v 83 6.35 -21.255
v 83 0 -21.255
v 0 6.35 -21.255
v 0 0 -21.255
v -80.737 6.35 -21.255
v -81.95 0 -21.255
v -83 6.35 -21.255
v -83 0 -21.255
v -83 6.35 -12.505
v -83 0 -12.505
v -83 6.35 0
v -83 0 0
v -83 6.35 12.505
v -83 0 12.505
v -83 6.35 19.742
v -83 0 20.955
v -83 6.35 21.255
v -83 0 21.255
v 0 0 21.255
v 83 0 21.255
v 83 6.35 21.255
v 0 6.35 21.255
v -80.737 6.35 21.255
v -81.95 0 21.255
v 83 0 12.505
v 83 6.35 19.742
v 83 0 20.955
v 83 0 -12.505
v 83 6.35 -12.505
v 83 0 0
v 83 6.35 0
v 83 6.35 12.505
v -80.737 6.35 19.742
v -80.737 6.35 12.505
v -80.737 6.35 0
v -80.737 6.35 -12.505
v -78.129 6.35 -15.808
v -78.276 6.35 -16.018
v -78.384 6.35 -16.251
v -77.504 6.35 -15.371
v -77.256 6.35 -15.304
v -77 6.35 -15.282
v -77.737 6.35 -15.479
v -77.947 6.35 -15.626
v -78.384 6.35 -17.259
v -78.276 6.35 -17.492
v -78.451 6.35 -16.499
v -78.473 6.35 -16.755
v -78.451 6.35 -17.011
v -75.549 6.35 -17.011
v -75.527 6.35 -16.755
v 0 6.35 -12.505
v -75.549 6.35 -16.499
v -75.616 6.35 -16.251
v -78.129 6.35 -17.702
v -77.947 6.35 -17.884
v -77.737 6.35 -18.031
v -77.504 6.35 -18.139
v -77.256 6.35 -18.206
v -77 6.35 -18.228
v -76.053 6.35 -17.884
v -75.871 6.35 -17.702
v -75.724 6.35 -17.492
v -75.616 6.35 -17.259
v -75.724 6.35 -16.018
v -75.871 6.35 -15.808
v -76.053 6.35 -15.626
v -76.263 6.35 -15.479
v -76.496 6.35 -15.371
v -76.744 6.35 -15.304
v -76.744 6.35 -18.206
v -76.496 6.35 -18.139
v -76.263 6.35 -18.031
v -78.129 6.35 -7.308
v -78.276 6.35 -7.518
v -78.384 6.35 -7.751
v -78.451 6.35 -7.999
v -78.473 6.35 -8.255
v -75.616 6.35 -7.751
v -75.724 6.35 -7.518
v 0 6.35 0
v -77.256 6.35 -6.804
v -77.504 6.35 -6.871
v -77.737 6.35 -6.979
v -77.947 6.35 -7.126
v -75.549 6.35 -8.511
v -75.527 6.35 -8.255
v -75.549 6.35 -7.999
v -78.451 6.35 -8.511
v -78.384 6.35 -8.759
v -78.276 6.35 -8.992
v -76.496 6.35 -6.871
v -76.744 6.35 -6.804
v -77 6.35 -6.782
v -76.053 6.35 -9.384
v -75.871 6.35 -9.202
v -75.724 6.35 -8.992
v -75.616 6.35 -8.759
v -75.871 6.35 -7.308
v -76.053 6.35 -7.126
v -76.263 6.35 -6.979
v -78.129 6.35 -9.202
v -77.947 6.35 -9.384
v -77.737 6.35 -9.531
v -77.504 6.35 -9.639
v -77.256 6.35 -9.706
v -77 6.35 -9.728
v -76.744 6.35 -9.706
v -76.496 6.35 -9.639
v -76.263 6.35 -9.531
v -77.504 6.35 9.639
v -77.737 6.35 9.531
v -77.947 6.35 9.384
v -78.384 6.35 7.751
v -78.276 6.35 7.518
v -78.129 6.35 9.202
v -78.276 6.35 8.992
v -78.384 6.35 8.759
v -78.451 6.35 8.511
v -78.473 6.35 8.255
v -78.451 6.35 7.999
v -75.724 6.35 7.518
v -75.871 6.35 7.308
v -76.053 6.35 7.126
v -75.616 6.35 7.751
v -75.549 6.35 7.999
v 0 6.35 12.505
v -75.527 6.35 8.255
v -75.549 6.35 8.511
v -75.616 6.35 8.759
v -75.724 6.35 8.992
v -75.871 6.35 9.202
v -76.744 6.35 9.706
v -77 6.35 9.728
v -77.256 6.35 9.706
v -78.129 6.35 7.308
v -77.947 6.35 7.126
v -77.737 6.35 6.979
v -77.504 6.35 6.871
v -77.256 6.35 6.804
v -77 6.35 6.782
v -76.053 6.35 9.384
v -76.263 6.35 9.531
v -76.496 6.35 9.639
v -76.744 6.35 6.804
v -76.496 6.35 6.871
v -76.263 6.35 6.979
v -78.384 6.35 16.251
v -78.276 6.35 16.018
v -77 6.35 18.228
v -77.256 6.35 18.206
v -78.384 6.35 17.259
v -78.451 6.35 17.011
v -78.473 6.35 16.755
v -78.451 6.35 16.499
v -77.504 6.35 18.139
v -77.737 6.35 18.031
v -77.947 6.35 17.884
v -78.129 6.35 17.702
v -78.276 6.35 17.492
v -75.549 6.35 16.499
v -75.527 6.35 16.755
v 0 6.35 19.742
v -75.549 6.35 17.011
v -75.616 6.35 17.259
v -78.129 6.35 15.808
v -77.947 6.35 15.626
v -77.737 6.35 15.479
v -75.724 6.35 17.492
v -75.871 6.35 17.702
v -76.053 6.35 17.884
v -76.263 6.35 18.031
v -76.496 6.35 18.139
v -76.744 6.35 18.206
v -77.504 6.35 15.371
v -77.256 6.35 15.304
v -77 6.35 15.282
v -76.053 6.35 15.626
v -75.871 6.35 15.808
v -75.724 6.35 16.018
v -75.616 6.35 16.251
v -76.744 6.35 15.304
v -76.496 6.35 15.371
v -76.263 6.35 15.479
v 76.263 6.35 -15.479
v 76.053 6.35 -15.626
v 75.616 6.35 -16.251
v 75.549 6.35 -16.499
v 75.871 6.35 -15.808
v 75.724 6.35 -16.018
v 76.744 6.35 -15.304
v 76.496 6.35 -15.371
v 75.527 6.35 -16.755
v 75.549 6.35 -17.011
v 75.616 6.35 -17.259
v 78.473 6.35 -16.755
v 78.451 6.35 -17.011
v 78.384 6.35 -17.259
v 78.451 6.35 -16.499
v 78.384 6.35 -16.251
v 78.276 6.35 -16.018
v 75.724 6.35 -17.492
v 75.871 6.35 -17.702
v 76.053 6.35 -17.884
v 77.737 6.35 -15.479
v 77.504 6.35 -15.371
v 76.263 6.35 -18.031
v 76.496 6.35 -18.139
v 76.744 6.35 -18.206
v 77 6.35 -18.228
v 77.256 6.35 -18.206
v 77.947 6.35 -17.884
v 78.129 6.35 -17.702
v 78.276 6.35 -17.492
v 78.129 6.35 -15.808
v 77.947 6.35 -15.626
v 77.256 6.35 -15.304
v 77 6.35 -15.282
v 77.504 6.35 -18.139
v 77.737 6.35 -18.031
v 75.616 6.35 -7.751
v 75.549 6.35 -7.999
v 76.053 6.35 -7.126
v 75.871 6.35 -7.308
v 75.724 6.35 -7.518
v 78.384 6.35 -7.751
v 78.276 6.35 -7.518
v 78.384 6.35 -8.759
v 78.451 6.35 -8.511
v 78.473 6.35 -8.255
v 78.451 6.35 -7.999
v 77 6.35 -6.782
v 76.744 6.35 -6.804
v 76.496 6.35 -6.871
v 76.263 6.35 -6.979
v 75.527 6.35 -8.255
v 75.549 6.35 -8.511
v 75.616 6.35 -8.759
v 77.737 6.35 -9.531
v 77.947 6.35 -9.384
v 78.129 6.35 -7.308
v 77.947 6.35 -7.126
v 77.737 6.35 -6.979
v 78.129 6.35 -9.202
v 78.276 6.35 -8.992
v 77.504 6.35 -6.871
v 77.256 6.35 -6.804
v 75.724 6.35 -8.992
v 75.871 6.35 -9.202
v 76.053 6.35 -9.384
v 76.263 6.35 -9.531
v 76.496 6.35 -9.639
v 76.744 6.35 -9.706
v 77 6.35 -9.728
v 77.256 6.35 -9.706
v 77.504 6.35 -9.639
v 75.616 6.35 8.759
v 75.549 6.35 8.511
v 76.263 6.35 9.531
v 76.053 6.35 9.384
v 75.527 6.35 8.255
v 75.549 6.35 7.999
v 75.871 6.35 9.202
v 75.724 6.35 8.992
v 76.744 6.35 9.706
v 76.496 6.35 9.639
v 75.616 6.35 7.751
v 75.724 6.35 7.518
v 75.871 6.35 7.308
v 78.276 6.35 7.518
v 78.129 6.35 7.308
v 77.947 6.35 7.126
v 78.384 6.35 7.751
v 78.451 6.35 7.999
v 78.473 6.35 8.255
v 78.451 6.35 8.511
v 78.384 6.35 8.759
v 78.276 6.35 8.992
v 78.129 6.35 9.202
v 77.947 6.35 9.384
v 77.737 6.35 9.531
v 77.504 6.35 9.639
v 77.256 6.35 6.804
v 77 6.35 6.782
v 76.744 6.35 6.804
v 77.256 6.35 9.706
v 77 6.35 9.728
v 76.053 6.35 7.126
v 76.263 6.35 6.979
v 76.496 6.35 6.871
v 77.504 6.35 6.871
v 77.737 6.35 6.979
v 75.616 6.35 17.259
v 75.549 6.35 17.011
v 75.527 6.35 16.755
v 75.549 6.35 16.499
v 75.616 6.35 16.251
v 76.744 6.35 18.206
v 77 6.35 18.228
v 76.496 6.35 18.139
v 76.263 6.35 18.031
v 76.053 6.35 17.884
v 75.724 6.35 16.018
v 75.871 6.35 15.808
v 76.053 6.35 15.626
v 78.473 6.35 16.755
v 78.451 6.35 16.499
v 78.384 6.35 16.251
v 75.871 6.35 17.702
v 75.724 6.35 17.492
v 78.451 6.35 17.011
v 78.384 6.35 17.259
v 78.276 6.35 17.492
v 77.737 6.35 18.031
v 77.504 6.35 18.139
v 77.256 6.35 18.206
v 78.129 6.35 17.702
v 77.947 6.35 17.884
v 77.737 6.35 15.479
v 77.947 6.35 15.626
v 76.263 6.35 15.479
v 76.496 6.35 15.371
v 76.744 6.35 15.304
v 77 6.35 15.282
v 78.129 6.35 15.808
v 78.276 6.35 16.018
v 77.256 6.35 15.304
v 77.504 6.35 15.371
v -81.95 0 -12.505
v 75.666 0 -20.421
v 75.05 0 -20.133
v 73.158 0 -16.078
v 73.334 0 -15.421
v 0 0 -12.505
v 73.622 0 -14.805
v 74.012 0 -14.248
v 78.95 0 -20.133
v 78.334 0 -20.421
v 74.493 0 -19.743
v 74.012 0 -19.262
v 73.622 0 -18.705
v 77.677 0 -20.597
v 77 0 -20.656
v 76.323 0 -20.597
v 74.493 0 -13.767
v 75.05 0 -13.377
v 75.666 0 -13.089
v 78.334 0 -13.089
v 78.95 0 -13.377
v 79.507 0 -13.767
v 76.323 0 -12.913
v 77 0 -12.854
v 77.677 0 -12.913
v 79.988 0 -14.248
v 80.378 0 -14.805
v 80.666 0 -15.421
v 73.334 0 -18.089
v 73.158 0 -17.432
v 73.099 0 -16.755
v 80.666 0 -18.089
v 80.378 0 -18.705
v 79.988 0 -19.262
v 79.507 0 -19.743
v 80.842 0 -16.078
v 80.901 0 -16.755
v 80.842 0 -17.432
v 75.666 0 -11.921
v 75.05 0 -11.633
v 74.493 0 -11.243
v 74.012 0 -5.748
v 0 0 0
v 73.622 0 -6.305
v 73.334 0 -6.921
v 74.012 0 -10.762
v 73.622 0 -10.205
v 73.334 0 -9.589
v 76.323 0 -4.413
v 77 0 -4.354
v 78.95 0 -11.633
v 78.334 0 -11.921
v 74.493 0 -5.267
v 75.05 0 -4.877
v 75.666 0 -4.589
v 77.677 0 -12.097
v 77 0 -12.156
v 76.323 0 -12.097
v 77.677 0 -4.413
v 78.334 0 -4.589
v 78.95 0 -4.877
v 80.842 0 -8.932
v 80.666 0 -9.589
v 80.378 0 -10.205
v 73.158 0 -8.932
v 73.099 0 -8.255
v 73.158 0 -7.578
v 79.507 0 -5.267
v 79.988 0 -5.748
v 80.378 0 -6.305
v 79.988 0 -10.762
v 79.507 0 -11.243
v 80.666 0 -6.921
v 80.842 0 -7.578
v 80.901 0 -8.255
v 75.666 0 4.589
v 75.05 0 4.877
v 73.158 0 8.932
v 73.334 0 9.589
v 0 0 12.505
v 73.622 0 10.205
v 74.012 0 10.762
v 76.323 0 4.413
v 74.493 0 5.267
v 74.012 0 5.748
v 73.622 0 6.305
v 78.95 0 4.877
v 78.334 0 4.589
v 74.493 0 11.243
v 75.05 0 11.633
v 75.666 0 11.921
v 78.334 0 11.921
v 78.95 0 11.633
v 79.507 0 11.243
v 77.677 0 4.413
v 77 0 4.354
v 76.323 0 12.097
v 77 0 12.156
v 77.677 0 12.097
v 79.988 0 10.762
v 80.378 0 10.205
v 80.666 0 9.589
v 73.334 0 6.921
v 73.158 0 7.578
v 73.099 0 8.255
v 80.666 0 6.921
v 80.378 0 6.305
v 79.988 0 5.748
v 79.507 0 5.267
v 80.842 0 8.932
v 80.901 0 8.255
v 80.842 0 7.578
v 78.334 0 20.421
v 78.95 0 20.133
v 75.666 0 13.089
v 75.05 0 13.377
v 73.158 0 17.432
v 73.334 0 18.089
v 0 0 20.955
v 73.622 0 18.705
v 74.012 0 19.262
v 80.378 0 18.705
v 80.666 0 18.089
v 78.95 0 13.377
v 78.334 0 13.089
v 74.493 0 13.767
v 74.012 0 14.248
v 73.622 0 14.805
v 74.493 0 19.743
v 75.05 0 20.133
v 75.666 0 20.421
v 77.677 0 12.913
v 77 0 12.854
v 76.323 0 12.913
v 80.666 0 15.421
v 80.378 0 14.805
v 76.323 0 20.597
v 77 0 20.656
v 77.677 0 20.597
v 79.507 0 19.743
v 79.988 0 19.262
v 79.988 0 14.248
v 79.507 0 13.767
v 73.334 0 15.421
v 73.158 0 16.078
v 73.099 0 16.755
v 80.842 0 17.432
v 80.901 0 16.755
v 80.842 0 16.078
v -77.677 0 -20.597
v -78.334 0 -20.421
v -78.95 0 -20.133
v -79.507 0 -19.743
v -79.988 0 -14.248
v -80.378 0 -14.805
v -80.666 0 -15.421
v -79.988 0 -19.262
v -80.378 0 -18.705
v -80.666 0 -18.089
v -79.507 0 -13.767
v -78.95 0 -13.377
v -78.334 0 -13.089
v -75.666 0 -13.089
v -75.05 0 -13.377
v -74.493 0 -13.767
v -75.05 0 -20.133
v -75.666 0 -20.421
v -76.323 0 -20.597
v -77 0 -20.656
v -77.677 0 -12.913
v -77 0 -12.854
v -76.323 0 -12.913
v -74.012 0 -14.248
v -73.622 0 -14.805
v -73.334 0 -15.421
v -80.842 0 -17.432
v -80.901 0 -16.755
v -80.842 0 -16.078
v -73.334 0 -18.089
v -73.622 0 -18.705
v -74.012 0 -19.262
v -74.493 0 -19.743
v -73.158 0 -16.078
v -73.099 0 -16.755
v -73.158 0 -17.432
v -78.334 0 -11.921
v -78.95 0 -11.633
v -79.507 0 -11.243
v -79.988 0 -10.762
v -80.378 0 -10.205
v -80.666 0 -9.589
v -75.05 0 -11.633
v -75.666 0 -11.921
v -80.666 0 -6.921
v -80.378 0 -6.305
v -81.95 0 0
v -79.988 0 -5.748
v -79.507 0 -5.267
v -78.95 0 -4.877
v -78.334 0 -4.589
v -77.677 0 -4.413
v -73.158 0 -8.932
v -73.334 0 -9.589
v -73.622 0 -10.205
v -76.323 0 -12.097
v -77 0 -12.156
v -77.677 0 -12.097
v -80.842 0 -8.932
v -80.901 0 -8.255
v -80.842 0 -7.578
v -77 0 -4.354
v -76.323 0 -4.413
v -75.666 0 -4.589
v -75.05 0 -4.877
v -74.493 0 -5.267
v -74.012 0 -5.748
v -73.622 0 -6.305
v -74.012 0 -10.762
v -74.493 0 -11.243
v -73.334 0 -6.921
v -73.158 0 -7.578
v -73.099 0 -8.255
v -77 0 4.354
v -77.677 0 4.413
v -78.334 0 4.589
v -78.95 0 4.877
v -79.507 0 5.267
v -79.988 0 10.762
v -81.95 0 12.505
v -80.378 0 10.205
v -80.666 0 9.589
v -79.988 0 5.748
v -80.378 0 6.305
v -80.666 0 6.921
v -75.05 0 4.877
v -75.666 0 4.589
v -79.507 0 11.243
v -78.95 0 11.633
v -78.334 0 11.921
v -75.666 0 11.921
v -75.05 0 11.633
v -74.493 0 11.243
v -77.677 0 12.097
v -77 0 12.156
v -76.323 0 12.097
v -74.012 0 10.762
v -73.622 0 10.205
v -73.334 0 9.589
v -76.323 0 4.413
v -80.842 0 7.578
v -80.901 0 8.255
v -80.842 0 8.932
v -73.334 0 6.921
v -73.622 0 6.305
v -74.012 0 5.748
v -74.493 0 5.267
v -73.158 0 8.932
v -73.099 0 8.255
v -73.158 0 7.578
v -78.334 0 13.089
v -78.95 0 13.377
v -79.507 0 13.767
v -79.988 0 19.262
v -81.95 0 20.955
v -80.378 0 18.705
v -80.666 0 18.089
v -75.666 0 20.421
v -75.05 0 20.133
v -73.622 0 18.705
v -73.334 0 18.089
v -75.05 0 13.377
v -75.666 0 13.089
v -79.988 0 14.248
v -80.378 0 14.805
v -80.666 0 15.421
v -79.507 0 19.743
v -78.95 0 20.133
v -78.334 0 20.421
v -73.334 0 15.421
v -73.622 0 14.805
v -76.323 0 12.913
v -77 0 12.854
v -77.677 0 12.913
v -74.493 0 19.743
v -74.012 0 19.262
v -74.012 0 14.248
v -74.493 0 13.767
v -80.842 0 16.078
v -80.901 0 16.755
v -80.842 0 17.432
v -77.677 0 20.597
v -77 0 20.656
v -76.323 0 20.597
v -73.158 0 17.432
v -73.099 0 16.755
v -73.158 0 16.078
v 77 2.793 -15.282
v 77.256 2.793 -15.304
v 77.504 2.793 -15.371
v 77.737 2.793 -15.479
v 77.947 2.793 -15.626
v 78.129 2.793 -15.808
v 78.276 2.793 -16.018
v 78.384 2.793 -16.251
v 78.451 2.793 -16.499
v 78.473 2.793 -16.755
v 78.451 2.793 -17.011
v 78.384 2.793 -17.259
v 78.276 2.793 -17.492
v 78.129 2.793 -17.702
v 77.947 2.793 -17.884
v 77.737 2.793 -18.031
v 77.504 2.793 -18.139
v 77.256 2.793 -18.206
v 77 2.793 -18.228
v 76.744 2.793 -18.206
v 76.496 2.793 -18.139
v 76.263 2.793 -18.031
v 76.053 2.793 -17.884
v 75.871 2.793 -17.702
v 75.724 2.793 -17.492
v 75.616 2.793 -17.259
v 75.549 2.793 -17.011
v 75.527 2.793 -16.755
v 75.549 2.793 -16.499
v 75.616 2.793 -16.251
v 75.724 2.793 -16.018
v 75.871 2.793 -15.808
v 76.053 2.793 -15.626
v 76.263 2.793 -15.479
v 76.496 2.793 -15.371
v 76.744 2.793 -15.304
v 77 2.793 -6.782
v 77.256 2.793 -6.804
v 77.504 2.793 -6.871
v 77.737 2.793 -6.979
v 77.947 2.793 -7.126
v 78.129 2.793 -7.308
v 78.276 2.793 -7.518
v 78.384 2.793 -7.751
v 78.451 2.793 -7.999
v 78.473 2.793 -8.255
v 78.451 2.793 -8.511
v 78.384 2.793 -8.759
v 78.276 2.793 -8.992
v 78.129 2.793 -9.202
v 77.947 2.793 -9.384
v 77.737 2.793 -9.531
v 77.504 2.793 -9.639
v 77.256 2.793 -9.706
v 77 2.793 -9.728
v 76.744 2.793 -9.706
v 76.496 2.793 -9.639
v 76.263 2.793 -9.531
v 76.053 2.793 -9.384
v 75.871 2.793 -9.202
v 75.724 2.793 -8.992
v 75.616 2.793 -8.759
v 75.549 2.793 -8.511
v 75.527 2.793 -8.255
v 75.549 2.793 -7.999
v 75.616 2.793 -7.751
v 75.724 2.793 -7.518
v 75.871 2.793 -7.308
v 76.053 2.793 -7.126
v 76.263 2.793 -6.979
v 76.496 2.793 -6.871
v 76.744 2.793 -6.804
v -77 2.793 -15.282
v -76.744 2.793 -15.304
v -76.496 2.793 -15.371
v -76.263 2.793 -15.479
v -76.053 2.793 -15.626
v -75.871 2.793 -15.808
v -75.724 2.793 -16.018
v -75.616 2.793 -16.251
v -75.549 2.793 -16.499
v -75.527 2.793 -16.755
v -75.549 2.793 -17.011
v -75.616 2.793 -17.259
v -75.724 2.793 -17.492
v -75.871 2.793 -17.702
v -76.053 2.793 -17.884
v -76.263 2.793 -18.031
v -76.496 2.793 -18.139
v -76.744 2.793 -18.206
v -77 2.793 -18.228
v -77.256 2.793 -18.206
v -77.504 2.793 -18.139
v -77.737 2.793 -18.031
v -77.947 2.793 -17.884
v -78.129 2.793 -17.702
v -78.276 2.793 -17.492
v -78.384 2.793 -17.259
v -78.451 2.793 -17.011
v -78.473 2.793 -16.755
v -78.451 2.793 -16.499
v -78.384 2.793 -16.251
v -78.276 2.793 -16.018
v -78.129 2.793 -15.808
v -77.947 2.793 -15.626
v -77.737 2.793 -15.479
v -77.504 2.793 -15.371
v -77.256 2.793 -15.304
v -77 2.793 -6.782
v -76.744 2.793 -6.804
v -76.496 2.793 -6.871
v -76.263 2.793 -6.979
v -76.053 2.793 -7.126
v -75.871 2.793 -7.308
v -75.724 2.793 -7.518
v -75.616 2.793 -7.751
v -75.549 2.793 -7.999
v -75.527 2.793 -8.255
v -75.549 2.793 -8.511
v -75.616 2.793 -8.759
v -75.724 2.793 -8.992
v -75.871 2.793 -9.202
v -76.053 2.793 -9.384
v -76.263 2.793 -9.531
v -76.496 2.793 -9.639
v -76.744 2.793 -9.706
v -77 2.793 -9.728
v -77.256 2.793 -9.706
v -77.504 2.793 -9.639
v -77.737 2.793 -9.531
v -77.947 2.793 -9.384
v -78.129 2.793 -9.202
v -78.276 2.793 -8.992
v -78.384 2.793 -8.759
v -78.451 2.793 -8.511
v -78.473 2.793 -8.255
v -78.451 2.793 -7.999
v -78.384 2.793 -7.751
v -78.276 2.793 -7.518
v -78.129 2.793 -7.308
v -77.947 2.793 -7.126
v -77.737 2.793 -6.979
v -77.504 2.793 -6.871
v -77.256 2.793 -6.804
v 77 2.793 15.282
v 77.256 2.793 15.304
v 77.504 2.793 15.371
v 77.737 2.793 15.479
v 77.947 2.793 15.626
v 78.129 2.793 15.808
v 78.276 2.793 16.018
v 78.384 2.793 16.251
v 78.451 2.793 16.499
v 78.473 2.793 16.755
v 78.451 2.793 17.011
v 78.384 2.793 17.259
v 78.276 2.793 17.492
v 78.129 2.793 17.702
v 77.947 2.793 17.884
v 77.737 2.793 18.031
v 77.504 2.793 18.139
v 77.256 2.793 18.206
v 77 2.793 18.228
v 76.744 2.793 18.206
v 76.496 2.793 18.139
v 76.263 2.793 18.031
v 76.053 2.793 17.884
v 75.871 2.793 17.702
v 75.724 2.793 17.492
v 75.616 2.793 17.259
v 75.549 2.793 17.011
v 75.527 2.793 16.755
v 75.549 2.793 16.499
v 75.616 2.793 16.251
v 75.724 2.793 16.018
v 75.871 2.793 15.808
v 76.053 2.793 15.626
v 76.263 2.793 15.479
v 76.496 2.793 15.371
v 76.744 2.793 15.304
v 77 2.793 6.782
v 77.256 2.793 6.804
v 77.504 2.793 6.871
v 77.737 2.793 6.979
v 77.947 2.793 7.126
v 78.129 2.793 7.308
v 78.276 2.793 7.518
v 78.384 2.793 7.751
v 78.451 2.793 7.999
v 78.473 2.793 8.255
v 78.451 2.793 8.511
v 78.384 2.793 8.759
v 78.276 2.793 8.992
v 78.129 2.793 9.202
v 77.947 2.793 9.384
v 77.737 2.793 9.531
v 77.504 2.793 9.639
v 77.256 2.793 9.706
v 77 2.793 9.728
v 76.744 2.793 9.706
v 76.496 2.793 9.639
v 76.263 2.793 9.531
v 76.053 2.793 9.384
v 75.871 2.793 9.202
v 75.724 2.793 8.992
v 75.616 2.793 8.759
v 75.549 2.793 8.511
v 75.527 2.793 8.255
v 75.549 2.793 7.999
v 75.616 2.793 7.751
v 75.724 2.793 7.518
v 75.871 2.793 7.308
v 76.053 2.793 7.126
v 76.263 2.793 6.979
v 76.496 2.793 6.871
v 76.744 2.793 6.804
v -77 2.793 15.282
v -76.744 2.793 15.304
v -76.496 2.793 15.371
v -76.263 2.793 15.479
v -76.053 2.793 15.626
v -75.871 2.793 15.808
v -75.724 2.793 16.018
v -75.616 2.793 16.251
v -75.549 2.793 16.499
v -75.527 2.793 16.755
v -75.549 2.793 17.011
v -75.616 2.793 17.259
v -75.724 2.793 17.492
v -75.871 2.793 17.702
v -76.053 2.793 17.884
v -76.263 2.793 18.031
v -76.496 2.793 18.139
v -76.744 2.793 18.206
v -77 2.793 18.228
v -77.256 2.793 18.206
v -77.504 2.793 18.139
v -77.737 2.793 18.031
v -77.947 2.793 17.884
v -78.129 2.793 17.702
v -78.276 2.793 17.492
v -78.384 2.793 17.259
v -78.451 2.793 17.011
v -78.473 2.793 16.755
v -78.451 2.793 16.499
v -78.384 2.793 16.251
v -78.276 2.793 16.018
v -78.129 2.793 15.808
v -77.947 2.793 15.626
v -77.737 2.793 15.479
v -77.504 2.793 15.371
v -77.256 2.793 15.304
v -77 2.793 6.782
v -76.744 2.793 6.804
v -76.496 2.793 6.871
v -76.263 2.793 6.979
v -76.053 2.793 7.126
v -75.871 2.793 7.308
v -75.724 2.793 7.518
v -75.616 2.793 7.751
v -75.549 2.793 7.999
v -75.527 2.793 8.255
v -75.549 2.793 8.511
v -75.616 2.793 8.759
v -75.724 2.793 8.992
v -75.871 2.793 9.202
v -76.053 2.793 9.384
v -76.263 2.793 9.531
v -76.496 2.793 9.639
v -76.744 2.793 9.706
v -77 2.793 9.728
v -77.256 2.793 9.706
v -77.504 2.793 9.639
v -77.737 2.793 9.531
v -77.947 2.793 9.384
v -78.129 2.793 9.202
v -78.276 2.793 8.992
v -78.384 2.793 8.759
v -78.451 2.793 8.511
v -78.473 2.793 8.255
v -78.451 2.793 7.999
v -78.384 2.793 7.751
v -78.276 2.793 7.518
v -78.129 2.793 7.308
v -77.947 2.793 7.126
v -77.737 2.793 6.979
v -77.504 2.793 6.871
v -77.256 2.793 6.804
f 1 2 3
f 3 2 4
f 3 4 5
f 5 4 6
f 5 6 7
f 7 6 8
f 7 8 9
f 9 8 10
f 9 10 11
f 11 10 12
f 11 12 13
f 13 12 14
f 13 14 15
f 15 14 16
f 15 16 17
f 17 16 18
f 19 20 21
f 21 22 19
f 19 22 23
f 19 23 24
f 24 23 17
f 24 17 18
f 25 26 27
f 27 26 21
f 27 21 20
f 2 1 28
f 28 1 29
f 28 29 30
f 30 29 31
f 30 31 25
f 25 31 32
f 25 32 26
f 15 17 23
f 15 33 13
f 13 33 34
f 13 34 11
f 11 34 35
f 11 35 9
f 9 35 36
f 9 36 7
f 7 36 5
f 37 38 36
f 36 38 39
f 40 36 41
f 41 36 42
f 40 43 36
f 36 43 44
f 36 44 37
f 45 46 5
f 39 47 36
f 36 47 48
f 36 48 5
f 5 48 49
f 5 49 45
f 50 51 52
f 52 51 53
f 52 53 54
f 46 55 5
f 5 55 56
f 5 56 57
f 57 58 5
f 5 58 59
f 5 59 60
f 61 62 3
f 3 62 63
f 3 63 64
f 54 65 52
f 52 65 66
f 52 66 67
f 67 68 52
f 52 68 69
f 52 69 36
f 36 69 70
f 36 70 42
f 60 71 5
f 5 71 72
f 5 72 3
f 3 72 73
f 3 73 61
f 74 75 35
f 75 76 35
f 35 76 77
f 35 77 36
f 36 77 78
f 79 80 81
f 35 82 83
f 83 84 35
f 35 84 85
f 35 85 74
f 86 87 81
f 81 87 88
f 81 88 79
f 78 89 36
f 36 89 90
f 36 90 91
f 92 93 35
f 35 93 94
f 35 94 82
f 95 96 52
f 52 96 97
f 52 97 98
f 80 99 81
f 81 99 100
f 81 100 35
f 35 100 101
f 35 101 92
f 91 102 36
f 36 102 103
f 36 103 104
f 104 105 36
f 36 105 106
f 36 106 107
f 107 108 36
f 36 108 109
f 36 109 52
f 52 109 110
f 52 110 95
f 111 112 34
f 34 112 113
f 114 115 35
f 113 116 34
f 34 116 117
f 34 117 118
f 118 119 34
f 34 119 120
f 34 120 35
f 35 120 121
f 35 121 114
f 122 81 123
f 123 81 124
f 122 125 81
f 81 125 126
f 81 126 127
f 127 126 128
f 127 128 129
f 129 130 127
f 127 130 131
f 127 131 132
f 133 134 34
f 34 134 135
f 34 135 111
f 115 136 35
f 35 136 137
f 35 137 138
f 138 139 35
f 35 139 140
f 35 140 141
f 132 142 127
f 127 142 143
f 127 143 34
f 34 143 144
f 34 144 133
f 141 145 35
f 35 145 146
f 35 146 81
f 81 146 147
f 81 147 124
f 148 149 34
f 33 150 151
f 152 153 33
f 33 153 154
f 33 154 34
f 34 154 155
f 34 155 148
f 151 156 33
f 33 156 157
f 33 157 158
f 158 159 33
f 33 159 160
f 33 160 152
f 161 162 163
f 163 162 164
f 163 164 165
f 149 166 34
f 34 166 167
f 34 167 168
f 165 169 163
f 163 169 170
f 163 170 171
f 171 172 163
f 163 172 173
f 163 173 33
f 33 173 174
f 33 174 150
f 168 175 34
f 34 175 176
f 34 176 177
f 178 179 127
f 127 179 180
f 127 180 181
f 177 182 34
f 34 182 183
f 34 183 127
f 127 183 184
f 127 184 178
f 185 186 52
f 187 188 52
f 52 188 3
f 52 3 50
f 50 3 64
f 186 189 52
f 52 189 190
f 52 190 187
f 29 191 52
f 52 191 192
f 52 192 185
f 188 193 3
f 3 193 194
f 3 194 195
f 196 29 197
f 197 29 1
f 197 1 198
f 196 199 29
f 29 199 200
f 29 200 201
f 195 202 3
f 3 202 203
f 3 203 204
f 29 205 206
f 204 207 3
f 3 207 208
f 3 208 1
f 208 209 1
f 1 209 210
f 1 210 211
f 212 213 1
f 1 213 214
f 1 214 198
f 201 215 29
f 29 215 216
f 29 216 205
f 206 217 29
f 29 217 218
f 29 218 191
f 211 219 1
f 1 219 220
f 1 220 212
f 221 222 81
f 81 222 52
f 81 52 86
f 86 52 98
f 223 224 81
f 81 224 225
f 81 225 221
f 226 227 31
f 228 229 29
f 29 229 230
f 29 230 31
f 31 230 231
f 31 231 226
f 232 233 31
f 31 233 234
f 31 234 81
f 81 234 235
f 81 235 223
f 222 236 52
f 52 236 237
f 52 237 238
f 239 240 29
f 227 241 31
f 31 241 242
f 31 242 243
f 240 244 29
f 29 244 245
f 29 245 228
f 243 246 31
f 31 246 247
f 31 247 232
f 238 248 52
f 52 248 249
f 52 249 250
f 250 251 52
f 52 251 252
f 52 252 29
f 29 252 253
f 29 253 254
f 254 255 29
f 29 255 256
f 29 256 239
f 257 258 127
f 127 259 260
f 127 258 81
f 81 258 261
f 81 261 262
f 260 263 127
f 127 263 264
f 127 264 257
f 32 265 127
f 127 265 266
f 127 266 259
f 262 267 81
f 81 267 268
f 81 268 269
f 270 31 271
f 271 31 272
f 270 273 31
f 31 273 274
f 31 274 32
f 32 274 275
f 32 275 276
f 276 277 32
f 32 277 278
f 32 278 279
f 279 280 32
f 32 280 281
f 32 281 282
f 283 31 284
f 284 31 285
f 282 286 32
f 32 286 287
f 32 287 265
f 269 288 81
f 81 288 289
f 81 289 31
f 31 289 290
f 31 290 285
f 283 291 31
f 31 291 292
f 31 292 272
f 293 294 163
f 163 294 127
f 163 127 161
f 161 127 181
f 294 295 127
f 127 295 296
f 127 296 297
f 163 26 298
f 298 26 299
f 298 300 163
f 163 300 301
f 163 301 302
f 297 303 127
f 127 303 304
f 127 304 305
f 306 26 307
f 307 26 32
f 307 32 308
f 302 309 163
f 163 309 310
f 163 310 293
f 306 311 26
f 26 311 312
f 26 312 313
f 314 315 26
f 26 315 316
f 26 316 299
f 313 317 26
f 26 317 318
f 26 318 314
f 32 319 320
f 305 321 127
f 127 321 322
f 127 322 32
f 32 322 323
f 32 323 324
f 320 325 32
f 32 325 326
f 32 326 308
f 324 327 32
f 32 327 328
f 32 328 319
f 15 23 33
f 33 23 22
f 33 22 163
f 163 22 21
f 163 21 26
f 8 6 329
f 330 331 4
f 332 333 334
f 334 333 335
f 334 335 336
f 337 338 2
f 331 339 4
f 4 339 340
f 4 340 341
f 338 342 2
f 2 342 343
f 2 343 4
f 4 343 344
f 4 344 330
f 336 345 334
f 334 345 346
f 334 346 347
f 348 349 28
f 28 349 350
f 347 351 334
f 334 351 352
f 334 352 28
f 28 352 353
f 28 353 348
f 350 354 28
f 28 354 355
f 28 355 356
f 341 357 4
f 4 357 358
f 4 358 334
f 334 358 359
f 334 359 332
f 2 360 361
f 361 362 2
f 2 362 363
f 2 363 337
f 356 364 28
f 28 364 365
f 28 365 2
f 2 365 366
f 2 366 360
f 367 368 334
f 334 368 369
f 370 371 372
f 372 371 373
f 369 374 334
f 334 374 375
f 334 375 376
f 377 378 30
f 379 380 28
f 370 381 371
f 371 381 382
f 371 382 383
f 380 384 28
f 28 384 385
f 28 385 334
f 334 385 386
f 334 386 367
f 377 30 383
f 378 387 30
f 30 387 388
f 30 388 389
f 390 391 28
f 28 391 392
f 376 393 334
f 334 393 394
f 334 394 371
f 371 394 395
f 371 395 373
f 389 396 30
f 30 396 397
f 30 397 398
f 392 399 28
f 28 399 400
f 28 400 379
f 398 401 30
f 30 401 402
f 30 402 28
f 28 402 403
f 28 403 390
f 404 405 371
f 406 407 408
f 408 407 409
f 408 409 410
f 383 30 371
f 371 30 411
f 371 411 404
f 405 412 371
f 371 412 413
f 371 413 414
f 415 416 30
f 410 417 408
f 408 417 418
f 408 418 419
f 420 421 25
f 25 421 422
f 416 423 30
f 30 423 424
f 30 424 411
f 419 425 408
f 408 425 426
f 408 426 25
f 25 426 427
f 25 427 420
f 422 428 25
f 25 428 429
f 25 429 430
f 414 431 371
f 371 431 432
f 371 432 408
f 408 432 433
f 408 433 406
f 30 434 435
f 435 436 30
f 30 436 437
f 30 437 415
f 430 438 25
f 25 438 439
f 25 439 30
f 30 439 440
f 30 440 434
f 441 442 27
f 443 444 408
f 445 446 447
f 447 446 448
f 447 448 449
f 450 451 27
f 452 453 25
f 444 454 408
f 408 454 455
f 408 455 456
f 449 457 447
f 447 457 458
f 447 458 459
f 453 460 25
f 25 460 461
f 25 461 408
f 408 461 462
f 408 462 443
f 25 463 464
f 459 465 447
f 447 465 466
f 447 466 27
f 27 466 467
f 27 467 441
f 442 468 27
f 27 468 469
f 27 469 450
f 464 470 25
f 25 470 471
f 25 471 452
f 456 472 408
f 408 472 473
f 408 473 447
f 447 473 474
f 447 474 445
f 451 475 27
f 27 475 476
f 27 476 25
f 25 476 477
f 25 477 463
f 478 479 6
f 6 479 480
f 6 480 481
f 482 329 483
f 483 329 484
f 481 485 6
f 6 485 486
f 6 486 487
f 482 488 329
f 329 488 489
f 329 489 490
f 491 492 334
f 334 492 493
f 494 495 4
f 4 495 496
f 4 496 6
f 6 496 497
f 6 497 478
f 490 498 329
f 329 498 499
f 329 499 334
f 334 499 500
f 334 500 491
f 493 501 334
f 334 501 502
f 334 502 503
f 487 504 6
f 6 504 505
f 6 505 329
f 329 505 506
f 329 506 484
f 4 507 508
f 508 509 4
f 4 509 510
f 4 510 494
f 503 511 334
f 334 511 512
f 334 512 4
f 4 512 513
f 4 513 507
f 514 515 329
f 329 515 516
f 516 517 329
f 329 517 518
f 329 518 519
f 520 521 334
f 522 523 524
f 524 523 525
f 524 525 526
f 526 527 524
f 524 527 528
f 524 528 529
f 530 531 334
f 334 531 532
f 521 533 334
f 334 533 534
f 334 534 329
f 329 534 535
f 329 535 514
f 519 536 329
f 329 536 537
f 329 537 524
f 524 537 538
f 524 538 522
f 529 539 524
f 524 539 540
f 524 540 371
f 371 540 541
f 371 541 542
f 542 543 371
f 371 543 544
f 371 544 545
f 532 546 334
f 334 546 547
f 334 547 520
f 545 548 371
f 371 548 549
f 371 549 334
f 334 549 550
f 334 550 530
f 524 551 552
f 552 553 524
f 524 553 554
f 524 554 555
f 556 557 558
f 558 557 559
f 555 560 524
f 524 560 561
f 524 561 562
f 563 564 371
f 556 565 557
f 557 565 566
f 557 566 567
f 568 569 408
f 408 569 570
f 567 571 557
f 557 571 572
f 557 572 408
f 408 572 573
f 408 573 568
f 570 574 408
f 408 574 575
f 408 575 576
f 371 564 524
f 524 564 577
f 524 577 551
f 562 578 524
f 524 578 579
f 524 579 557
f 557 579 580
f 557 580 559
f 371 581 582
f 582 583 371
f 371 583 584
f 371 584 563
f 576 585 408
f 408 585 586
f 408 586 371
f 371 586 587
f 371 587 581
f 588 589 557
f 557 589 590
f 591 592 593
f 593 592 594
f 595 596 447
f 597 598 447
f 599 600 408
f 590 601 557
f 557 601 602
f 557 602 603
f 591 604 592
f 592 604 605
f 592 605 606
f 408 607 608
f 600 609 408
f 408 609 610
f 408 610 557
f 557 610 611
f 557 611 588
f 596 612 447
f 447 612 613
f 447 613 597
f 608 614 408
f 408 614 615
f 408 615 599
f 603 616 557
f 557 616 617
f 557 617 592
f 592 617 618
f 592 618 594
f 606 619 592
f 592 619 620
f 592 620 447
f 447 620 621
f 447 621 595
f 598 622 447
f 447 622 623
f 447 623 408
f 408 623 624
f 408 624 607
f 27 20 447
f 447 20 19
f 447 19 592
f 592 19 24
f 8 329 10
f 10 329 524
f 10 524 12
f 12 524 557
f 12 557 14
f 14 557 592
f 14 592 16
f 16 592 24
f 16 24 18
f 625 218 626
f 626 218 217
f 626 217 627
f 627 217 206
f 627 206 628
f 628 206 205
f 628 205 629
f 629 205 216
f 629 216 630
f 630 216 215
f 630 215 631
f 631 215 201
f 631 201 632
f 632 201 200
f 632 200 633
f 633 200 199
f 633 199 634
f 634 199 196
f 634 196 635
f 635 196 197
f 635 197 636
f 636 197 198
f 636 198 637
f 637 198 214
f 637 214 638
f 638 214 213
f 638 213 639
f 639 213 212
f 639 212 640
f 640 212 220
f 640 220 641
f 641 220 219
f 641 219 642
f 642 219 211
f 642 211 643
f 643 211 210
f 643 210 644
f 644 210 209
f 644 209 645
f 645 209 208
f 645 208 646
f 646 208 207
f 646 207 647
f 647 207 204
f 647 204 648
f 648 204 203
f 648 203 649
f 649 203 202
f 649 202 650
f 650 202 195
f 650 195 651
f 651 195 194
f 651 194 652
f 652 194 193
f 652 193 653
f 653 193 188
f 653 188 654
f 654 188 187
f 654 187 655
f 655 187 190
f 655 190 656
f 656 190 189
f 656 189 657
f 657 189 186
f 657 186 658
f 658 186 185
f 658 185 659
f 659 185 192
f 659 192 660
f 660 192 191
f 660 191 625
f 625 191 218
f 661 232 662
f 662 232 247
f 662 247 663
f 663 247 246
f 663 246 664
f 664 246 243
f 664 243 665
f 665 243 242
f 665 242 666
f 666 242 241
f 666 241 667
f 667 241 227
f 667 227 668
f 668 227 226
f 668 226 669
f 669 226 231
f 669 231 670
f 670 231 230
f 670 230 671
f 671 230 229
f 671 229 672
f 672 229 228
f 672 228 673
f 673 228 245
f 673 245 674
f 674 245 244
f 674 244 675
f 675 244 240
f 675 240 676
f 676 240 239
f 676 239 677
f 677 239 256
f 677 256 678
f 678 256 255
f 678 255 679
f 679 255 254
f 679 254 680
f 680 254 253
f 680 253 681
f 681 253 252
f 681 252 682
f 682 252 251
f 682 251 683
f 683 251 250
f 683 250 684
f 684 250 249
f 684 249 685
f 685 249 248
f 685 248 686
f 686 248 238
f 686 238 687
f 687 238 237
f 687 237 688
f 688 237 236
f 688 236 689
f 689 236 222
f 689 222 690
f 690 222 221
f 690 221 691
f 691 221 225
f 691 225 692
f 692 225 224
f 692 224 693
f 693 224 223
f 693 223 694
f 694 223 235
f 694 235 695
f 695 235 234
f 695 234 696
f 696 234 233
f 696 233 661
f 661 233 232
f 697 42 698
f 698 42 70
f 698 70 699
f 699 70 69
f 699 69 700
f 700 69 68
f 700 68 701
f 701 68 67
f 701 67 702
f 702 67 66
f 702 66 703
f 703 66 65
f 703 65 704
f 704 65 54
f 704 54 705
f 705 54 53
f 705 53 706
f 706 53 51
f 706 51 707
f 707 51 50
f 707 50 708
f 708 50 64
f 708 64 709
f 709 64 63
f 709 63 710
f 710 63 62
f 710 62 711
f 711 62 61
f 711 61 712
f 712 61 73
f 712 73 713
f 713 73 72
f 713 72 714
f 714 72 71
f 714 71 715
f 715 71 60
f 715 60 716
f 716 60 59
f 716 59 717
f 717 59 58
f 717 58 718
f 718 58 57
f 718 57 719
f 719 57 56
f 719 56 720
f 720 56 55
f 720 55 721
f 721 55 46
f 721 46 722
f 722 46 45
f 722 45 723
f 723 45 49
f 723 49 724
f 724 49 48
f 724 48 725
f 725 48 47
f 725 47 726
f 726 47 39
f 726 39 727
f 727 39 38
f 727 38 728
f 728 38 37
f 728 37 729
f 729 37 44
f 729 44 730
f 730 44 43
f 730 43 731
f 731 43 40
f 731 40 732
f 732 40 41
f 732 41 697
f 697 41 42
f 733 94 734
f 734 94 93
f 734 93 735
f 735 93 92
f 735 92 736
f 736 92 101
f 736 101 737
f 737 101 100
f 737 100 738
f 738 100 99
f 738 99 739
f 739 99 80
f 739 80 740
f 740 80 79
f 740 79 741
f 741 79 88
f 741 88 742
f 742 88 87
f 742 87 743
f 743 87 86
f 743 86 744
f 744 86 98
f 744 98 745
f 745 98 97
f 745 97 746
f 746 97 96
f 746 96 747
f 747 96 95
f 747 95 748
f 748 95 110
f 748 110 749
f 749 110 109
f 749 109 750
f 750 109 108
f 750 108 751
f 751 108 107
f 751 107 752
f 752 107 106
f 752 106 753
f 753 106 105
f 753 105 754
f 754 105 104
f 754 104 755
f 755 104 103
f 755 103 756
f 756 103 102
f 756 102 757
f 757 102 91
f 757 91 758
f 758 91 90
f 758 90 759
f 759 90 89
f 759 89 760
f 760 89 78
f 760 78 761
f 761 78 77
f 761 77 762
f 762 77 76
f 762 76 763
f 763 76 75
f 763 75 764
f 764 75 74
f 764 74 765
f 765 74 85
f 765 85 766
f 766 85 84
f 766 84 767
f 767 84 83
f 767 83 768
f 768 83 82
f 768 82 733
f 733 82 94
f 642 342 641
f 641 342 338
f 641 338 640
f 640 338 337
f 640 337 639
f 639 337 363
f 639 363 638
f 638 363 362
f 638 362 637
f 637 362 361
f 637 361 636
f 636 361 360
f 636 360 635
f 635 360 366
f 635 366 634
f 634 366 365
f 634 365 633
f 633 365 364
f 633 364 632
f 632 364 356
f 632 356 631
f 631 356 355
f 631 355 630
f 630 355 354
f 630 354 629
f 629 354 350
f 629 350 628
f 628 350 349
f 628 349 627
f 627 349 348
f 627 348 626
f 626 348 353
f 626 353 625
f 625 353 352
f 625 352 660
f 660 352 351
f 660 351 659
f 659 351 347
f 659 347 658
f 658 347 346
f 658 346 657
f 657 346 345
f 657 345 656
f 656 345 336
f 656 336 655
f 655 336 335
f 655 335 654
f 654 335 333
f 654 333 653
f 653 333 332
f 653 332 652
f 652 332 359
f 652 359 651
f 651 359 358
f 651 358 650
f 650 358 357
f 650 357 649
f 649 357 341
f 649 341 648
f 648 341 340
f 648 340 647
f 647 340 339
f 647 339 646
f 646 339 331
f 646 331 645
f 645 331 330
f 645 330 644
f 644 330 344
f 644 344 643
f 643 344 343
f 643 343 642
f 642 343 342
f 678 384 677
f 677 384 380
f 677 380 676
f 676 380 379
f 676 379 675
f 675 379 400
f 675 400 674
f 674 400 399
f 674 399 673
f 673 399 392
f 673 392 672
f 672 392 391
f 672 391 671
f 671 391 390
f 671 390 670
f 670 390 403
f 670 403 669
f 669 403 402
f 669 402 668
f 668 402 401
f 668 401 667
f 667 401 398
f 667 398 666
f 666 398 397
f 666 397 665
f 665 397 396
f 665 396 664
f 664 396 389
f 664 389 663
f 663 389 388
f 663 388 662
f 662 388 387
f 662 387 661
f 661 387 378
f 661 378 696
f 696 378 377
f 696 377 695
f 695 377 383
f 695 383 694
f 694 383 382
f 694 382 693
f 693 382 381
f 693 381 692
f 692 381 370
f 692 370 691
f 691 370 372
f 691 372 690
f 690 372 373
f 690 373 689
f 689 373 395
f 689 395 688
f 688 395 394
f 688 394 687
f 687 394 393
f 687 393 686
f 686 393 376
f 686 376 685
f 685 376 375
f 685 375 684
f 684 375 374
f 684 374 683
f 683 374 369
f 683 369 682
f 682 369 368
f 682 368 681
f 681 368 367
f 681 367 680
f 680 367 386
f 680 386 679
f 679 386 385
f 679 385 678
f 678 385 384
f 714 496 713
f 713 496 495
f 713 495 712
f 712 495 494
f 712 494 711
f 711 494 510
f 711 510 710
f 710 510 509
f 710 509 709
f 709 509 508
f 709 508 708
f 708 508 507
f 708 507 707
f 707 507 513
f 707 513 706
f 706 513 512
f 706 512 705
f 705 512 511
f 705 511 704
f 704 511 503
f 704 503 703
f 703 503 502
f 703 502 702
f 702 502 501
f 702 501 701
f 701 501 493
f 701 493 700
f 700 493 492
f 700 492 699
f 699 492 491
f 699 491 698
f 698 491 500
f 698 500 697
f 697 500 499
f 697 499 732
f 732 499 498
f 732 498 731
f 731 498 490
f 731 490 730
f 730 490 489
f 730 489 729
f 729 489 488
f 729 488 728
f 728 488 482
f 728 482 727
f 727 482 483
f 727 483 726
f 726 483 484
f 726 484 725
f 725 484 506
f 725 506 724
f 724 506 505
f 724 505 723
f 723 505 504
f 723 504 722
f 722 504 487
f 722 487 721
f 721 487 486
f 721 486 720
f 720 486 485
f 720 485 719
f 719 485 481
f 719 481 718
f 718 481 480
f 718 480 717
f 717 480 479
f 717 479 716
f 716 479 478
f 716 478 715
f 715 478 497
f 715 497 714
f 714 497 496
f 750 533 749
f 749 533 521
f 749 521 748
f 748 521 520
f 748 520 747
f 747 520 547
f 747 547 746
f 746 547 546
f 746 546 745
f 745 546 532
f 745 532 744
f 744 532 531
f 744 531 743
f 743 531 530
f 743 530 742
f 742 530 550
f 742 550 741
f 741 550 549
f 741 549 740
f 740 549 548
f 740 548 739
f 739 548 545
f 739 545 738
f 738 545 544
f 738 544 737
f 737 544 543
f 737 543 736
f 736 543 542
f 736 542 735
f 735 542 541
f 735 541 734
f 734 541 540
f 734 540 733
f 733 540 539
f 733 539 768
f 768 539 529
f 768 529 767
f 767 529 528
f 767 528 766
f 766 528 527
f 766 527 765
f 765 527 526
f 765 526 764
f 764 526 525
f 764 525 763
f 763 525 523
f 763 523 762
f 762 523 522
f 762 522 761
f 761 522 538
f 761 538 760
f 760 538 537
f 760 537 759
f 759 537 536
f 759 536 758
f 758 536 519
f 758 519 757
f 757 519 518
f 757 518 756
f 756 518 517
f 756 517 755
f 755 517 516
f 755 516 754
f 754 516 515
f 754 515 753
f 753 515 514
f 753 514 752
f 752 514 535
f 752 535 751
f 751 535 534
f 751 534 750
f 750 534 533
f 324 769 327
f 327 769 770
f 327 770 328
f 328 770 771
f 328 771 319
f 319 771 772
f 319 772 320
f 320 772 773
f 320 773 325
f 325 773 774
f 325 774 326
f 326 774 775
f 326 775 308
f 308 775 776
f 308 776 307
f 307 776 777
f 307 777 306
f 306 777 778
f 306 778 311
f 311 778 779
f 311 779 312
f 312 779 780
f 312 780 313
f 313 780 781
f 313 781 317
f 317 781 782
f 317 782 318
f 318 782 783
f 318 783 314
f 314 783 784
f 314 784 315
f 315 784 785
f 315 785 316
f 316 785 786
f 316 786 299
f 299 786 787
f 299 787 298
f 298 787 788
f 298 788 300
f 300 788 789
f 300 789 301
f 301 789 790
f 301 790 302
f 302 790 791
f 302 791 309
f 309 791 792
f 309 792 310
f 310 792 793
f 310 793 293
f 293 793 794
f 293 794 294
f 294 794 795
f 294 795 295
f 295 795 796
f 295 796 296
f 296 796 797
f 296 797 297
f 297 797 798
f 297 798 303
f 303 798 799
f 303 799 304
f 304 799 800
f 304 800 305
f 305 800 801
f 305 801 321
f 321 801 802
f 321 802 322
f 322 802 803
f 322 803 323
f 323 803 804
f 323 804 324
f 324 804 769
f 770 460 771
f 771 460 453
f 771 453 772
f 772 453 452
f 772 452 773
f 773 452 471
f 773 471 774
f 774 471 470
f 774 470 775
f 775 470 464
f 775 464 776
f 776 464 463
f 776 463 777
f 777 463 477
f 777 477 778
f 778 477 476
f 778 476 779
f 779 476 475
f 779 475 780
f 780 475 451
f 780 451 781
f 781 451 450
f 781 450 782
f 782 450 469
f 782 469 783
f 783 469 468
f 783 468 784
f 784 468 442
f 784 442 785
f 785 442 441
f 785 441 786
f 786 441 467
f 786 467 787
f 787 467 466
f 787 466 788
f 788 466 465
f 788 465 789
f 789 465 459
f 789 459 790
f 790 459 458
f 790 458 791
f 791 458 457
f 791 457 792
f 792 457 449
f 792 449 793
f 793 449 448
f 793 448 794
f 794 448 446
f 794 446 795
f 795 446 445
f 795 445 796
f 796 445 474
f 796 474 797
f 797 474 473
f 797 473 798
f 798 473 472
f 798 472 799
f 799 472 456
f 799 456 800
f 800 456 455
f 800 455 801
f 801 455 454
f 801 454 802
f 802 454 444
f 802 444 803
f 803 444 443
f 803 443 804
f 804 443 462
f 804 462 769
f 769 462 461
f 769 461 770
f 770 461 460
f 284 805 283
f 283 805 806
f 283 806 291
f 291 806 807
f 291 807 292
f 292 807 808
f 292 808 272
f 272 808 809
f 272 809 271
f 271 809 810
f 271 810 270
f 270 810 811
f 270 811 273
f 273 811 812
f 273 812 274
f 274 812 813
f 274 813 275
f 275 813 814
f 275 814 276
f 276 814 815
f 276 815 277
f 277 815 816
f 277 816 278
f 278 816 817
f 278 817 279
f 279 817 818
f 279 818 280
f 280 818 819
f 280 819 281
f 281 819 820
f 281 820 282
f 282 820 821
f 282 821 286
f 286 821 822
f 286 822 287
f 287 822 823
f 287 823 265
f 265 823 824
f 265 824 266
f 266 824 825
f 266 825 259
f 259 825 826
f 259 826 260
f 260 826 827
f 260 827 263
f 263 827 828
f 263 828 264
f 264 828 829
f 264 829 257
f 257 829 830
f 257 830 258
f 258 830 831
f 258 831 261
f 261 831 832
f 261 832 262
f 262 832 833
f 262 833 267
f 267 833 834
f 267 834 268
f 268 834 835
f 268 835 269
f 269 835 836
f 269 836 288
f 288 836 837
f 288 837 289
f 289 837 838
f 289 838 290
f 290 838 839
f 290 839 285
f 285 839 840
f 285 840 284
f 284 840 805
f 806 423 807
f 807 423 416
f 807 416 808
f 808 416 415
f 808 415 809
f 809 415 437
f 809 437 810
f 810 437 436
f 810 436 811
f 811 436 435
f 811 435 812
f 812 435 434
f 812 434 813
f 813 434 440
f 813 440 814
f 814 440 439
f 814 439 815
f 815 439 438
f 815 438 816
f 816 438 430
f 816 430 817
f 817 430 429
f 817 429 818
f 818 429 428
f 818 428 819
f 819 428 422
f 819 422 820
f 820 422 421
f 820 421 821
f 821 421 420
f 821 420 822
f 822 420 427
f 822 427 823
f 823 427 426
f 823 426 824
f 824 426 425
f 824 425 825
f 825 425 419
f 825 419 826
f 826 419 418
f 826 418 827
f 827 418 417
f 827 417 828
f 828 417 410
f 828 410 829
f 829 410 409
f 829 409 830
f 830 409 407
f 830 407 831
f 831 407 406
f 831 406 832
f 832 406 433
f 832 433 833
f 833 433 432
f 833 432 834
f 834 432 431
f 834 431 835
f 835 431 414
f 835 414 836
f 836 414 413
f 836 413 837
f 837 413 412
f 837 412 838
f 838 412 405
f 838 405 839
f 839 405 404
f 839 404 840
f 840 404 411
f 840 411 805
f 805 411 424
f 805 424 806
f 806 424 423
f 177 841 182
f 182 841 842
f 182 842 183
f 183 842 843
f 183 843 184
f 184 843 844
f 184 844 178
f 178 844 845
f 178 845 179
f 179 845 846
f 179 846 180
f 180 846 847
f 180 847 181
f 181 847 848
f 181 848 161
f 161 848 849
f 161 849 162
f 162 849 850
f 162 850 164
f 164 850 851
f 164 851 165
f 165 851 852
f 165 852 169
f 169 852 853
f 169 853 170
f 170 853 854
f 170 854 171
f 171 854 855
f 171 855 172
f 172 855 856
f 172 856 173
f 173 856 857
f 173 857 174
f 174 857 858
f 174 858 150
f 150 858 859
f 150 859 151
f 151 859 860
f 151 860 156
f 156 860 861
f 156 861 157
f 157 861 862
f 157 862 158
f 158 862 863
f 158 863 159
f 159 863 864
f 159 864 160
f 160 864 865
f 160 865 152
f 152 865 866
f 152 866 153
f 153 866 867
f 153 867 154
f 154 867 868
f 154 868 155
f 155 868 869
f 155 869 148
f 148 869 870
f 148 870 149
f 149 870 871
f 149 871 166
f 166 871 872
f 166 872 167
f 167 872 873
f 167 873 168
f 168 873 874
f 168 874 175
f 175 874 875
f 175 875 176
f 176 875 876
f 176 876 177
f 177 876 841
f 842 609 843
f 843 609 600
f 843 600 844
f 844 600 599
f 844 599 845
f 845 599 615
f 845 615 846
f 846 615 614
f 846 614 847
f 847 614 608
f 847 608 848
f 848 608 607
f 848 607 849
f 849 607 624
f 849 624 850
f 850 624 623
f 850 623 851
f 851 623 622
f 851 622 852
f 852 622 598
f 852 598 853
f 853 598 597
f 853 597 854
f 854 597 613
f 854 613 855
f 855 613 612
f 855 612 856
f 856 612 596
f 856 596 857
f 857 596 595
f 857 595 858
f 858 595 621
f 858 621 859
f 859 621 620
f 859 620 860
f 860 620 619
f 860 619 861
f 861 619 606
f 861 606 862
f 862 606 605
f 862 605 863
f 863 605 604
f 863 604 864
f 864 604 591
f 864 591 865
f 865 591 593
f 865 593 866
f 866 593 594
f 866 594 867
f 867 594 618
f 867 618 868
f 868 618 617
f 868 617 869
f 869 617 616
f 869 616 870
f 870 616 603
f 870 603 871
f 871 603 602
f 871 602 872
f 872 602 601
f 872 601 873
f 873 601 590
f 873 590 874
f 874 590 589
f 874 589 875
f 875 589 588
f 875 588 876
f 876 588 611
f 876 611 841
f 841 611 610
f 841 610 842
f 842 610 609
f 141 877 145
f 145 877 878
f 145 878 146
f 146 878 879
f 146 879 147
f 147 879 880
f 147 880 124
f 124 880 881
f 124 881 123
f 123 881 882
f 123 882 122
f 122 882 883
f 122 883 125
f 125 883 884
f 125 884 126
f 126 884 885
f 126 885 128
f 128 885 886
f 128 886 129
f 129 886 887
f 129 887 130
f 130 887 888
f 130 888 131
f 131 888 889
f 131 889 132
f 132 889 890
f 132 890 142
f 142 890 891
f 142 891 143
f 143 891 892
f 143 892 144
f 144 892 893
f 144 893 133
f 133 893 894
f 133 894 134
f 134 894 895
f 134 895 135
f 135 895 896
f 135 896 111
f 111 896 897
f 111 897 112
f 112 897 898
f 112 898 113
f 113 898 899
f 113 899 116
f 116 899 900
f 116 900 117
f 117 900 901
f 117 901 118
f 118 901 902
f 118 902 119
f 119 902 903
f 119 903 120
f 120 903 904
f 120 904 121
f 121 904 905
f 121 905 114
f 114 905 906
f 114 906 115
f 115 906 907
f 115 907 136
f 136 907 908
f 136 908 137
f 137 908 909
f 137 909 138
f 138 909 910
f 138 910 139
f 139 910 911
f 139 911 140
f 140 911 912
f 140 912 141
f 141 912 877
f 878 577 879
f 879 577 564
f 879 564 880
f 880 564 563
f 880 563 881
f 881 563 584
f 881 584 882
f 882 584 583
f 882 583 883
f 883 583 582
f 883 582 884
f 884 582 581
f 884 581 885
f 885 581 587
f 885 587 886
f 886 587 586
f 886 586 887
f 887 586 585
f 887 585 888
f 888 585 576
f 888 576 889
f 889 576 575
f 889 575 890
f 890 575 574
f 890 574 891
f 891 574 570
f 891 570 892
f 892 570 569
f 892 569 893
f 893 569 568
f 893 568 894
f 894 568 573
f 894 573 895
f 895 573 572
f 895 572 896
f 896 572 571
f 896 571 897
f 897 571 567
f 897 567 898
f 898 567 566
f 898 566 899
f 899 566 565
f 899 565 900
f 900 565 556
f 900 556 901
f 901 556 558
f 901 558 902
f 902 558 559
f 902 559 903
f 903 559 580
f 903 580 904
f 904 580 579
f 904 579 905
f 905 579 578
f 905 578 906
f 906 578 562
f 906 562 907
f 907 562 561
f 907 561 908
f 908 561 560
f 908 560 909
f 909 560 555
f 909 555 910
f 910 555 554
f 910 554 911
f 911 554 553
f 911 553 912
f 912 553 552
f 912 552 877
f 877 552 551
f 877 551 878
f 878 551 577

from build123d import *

# Parameters (mm, degrees)
SKETCH1_W                                         = 166
SKETCH1_H                                         = 42.51
BOSS_EXTRUDE1_DEPTH                               = 6.35
F_4_CLEARANCE_HOLE1_D                             = 2.9464
CSK_FOR_4_FLAT_HEAD_SOCKET_CAP_SCREW1_D           = 2.9464
CSK_FOR_4_FLAT_HEAD_SOCKET_CAP_SCREW1_CSINK_D     = 6.9116702
CSK_FOR_4_FLAT_HEAD_SOCKET_CAP_SCREW1_CSINK_ANGLE = 82


with BuildPart() as part:
    # Sketch1 → Boss-Extrude1 (new body)
    with BuildSketch(Plane(origin=(0, 0, 0), x_dir=(1, 0, 0), z_dir=(0, 1, 0))):
        Rectangle(SKETCH1_W, SKETCH1_H)
    extrude(amount=BOSS_EXTRUDE1_DEPTH)

    # #4 Clearance Hole1 (through all)
    with Locations(Plane(origin=(0, 6.35, 0), x_dir=(1, 0, 0), z_dir=(0, 1, 0))):
        with Locations((-77, 8.255), (-77, 16.755), (77, 8.255), (77, 16.755)):
            Hole(F_4_CLEARANCE_HOLE1_D / 2)

    # CSK for #4 Flat Head Socket Cap Screw1 (through all)
    with Locations(Plane(origin=(0, 0, 0), x_dir=(-1, 0, 0), z_dir=(0, -1, 0))):
        with Locations((77, 8.255), (77, 16.755), (-77, 8.255), (-77, 16.755)):
            csk_for_4_flat_head_socket_cap_screw1 = CounterSinkHole(CSK_FOR_4_FLAT_HEAD_SOCKET_CAP_SCREW1_D / 2, CSK_FOR_4_FLAT_HEAD_SOCKET_CAP_SCREW1_CSINK_D / 2, counter_sink_angle=CSK_FOR_4_FLAT_HEAD_SOCKET_CAP_SCREW1_CSINK_ANGLE)

    # Mirror1: CSK for #4 Flat Head Socket Cap Screw1 across plane
    add(csk_for_4_flat_head_socket_cap_screw1.mirror(Plane.XY), mode=Mode.SUBTRACT)


solid = part.part
